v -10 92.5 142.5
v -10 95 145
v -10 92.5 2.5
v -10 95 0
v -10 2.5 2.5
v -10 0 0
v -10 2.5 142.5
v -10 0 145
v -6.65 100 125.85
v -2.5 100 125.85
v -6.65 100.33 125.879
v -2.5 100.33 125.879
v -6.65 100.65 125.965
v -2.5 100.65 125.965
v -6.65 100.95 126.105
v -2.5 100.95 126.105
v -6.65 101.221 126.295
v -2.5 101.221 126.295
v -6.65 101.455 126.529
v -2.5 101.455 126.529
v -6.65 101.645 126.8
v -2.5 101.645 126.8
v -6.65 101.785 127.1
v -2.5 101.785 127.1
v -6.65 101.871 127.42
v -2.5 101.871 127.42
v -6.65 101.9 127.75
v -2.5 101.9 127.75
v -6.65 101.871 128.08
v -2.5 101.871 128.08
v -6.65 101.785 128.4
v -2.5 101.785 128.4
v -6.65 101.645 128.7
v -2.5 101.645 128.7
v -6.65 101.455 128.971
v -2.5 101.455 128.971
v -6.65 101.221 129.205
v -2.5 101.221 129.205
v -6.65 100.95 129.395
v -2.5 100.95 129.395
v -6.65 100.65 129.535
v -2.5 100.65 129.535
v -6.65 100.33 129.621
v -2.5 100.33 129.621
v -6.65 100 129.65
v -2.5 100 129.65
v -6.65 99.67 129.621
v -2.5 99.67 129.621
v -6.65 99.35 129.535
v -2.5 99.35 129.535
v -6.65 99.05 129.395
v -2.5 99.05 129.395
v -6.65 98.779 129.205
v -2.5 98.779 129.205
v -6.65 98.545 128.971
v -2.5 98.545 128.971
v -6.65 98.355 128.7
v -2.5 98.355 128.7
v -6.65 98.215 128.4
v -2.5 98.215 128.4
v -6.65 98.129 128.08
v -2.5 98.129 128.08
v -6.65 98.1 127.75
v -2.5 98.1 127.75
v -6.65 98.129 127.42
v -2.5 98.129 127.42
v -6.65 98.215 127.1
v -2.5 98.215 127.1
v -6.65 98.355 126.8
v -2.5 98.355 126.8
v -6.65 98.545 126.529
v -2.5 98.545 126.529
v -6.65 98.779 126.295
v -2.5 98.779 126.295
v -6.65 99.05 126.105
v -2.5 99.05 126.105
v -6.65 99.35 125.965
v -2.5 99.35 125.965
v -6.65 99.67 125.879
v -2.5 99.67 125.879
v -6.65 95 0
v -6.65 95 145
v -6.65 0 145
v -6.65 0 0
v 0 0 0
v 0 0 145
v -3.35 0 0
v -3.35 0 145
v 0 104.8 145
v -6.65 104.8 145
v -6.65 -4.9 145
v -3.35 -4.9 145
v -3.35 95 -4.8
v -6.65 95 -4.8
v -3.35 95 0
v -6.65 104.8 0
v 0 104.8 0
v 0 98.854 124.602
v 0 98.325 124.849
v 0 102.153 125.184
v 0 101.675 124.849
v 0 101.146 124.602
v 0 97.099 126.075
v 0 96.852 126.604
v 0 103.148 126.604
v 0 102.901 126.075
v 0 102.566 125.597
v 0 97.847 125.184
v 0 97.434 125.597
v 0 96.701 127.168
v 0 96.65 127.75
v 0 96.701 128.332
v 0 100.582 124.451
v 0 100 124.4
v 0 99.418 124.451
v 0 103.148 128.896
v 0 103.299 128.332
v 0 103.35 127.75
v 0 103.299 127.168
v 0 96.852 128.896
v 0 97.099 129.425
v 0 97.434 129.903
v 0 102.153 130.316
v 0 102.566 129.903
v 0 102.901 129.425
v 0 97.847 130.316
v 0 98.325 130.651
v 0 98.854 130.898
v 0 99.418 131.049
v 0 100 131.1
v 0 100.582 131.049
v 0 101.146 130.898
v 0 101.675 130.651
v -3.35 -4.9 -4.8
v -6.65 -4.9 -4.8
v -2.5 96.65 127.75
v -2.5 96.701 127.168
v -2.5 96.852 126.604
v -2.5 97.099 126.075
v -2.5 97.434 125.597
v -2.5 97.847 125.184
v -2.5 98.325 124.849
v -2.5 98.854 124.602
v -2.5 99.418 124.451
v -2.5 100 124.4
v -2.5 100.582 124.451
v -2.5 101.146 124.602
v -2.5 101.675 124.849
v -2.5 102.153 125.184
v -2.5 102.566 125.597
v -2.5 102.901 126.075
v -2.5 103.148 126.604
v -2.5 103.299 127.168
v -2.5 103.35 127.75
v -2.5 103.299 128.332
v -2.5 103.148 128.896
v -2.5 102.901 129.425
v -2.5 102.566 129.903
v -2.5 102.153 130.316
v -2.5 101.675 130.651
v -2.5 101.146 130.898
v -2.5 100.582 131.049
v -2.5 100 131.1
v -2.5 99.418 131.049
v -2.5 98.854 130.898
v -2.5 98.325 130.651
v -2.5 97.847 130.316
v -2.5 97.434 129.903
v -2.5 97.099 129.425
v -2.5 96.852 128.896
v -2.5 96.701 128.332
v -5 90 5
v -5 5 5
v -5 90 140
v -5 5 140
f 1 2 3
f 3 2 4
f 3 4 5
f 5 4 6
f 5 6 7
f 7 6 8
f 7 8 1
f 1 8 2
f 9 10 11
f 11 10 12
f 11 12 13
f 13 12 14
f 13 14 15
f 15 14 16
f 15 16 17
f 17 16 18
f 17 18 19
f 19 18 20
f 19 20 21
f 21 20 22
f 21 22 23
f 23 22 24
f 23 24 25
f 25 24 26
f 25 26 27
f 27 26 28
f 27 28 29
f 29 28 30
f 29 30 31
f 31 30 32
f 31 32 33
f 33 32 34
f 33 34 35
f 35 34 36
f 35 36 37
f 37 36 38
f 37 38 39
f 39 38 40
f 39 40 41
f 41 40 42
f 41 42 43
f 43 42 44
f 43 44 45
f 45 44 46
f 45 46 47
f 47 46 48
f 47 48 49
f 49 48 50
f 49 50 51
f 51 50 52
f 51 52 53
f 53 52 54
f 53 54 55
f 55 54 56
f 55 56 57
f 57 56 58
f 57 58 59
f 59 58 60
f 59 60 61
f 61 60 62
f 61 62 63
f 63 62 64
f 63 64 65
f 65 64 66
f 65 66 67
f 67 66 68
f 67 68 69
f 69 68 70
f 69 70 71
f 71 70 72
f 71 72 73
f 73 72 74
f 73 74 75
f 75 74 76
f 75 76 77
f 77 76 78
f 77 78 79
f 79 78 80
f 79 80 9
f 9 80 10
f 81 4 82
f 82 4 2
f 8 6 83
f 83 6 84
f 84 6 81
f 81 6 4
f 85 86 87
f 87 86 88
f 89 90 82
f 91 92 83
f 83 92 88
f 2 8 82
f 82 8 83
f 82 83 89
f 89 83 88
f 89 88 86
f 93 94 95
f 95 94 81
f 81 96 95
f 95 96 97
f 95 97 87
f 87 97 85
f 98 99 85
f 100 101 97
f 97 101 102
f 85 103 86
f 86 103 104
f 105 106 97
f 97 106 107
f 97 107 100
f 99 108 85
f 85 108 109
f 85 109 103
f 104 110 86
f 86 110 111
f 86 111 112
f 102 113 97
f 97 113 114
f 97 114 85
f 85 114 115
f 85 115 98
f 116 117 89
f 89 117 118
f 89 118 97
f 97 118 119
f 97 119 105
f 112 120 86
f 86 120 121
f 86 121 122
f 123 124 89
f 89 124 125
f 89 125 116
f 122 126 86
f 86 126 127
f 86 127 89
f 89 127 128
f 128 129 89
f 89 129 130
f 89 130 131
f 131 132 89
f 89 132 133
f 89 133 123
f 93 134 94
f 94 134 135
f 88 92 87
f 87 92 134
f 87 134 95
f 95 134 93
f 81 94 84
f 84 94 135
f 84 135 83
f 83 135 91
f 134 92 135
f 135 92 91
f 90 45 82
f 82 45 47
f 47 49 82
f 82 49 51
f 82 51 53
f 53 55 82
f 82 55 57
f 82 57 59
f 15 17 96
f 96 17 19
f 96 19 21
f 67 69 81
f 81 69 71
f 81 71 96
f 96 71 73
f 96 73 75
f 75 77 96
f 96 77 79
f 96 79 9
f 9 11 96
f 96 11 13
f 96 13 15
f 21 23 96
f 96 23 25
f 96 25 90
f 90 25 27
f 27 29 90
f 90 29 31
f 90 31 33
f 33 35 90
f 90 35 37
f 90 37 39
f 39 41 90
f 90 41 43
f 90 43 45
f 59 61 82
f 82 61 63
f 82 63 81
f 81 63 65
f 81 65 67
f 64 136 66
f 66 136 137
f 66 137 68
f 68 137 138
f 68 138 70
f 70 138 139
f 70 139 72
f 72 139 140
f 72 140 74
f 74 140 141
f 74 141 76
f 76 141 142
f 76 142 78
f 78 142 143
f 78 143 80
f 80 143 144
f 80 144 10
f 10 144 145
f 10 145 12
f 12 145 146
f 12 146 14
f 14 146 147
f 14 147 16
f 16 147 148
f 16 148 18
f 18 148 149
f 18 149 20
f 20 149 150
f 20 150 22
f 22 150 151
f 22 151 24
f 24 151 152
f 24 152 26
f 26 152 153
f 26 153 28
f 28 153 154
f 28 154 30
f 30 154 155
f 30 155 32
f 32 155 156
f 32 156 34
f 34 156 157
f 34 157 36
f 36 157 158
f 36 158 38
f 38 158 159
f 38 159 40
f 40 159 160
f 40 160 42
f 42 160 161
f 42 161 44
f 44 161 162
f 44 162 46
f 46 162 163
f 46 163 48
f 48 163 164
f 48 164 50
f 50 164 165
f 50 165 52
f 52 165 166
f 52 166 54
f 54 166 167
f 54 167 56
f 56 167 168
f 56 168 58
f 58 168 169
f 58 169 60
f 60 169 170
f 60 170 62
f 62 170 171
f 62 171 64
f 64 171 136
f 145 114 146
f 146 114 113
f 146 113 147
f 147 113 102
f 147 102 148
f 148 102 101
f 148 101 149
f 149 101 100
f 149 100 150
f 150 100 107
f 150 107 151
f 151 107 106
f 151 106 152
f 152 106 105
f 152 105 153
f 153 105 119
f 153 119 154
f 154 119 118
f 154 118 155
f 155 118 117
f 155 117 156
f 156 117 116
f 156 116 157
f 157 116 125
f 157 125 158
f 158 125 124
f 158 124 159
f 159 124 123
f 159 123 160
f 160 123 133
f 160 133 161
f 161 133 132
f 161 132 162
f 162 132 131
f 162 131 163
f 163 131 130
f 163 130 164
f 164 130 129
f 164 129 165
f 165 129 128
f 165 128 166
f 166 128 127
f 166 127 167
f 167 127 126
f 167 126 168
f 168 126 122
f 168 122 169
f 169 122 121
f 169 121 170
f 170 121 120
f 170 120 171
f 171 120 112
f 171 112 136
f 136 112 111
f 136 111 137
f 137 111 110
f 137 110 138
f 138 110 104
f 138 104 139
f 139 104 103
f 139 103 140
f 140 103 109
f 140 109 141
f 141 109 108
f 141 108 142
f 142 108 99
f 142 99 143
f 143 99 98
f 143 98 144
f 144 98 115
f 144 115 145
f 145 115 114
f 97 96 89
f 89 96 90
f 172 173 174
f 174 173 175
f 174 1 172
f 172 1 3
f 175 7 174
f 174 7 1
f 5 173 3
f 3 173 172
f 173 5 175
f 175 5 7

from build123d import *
from OCP.BRepFilletAPI import BRepFilletAPI_MakeChamfer

# Parameters (mm, degrees)
SKETCH1_W           = 95
SKETCH1_H           = 145
BOSS_EXTRUDE1_DEPTH = 10
SKETCH2_W           = 3.3
SKETCH2_H           = 4.8
BOSS_EXTRUDE2_DEPTH = 95
SKETCH3_W           = 3.3
SKETCH3_H           = 149.8
BOSS_EXTRUDE3_DEPTH = 4.9
BOSS_EXTRUDE4_DEPTH = 10
CUT_EXTRUDE1_REACH  = 181.304
SKETCH5_R           = 1.9
SKETCH6_R           = 3.35
CUT_EXTRUDE2_DEPTH  = 2.5
CUT_EXTRUDE3_REACH  = 181.304
SKETCH7_W           = 0.2
SKETCH7_H           = 145
SKETCH8_W           = 85
SKETCH8_H           = 135
CUT_EXTRUDE4_DEPTH  = 5
CHAMFER1_SIZE       = 2.5
CHAMFER1_SIZE_2     = 5


with BuildPart() as part:
    # Sketch1 → Boss-Extrude1 (new body)
    with BuildSketch(Plane.YZ):
        with Locations((47.5, 72.5)):
            Rectangle(SKETCH1_W, SKETCH1_H)
    extrude(amount=-BOSS_EXTRUDE1_DEPTH)

    # Sketch2 → Boss-Extrude2 (add)
    with BuildSketch(Plane.XZ):
        with Locations((-5, -2.4)):
            Rectangle(SKETCH2_W, SKETCH2_H)
    extrude(amount=-BOSS_EXTRUDE2_DEPTH)

    # Sketch3 → Boss-Extrude3 (add)
    with BuildSketch(Plane.XZ):
        with Locations((-5, 70.1)):
            Rectangle(SKETCH3_W, SKETCH3_H)
    extrude(amount=BOSS_EXTRUDE3_DEPTH)

    # Sketch4 → Boss-Extrude4 (add)
    with BuildSketch(Plane(origin=(0, 95, 0), x_dir=(-1, 0, 0), z_dir=(0, 1, 0))):
        Polygon((6.65, 145), (0, 145), (0, 0), (3.35, 0), (6.65, 0), align=None)
    extrude(amount=BOSS_EXTRUDE4_DEPTH)

    # Sketch5 → Cut-Extrude1 (cut, up to next)
    with BuildSketch(Plane.YZ, mode=Mode.PRIVATE) as cut_extrude1_sk1:
        with Locations(Location((100, 127.75, 0), (0, 0, 270))):
            Circle(SKETCH5_R)
    cut_extrude1_tool1 = extrude(cut_extrude1_sk1.sketch, amount=-CUT_EXTRUDE1_REACH, mode=Mode.PRIVATE) & part.part
    add(cut_extrude1_tool1.solids().sort_by_distance((0, 100, 127.75))[0], mode=Mode.SUBTRACT)

    # Sketch6 → Cut-Extrude2 (cut)
    with BuildSketch(Plane.YZ):
        with Locations(Location((100, 127.75, 0), (0, 0, 270))):
            Circle(SKETCH6_R)
    extrude(amount=-CUT_EXTRUDE2_DEPTH, mode=Mode.SUBTRACT)

    # Sketch7 → Cut-Extrude3 (cut, up to next)
    with BuildSketch(Plane.YZ, mode=Mode.PRIVATE) as cut_extrude3_sk1:
        with Locations((104.9, 72.5)):
            Rectangle(SKETCH7_W, SKETCH7_H)
    cut_extrude3_tool1 = extrude(cut_extrude3_sk1.sketch, amount=-CUT_EXTRUDE3_REACH, mode=Mode.PRIVATE) & part.part
    add(cut_extrude3_tool1.solids().sort_by_distance((0, 104.9, 72.5))[0], mode=Mode.SUBTRACT)

    # Sketch8 → Cut-Extrude4 (cut)
    with BuildSketch(Plane(origin=(-10, 0, 0), x_dir=(0, -1, 0), z_dir=(-1, 0, 0))):
        with Locations((-47.5, 72.5)):
            Rectangle(SKETCH8_W, SKETCH8_H)
    extrude(amount=-CUT_EXTRUDE4_DEPTH, mode=Mode.SUBTRACT)

    # Chamfer1
    chamfer1_edges_1 = [part.edges().sort_by_distance(p)[0] for p in [
        (-10, 5, 72.5),
    ]]
    chamfer1_side_1 = [part.faces().sort_by_distance(p)[0] for p in [
        (-10, 4.95, 72.5),
    ]]
    chamfer1_edges_2 = [part.edges().sort_by_distance(p)[0] for p in [
        (-10, 47.5, 5),
    ]]
    chamfer1_side_2 = [part.faces().sort_by_distance(p)[0] for p in [
        (-10, 47.5, 4.95),
    ]]
    chamfer1_edges_3 = [part.edges().sort_by_distance(p)[0] for p in [
        (-10, 90, 72.5),
    ]]
    chamfer1_side_3 = [part.faces().sort_by_distance(p)[0] for p in [
        (-10, 90.05, 72.5),
    ]]
    chamfer1_edges_4 = [part.edges().sort_by_distance(p)[0] for p in [
        (-10, 47.5, 140),
    ]]
    chamfer1_side_4 = [part.faces().sort_by_distance(p)[0] for p in [
        (-10, 47.5, 140.05),
    ]]
    chamfer1 = BRepFilletAPI_MakeChamfer(part.part.solid().wrapped)
    for e in chamfer1_edges_1:
        chamfer1.Add(CHAMFER1_SIZE - 0.0001, CHAMFER1_SIZE_2 - 0.0001, e.wrapped, chamfer1_side_1[0].wrapped)
    for e in chamfer1_edges_2:
        chamfer1.Add(CHAMFER1_SIZE - 0.0001, CHAMFER1_SIZE_2 - 0.0001, e.wrapped, chamfer1_side_2[0].wrapped)
    for e in chamfer1_edges_3:
        chamfer1.Add(CHAMFER1_SIZE - 0.0001, CHAMFER1_SIZE_2 - 0.0001, e.wrapped, chamfer1_side_3[0].wrapped)
    for e in chamfer1_edges_4:
        chamfer1.Add(CHAMFER1_SIZE - 0.0001, CHAMFER1_SIZE_2 - 0.0001, e.wrapped, chamfer1_side_4[0].wrapped)
    add(Compound.cast(chamfer1.Shape()), mode=Mode.REPLACE)  # a hair under: the kernel refuses the full size


solid = part.part
